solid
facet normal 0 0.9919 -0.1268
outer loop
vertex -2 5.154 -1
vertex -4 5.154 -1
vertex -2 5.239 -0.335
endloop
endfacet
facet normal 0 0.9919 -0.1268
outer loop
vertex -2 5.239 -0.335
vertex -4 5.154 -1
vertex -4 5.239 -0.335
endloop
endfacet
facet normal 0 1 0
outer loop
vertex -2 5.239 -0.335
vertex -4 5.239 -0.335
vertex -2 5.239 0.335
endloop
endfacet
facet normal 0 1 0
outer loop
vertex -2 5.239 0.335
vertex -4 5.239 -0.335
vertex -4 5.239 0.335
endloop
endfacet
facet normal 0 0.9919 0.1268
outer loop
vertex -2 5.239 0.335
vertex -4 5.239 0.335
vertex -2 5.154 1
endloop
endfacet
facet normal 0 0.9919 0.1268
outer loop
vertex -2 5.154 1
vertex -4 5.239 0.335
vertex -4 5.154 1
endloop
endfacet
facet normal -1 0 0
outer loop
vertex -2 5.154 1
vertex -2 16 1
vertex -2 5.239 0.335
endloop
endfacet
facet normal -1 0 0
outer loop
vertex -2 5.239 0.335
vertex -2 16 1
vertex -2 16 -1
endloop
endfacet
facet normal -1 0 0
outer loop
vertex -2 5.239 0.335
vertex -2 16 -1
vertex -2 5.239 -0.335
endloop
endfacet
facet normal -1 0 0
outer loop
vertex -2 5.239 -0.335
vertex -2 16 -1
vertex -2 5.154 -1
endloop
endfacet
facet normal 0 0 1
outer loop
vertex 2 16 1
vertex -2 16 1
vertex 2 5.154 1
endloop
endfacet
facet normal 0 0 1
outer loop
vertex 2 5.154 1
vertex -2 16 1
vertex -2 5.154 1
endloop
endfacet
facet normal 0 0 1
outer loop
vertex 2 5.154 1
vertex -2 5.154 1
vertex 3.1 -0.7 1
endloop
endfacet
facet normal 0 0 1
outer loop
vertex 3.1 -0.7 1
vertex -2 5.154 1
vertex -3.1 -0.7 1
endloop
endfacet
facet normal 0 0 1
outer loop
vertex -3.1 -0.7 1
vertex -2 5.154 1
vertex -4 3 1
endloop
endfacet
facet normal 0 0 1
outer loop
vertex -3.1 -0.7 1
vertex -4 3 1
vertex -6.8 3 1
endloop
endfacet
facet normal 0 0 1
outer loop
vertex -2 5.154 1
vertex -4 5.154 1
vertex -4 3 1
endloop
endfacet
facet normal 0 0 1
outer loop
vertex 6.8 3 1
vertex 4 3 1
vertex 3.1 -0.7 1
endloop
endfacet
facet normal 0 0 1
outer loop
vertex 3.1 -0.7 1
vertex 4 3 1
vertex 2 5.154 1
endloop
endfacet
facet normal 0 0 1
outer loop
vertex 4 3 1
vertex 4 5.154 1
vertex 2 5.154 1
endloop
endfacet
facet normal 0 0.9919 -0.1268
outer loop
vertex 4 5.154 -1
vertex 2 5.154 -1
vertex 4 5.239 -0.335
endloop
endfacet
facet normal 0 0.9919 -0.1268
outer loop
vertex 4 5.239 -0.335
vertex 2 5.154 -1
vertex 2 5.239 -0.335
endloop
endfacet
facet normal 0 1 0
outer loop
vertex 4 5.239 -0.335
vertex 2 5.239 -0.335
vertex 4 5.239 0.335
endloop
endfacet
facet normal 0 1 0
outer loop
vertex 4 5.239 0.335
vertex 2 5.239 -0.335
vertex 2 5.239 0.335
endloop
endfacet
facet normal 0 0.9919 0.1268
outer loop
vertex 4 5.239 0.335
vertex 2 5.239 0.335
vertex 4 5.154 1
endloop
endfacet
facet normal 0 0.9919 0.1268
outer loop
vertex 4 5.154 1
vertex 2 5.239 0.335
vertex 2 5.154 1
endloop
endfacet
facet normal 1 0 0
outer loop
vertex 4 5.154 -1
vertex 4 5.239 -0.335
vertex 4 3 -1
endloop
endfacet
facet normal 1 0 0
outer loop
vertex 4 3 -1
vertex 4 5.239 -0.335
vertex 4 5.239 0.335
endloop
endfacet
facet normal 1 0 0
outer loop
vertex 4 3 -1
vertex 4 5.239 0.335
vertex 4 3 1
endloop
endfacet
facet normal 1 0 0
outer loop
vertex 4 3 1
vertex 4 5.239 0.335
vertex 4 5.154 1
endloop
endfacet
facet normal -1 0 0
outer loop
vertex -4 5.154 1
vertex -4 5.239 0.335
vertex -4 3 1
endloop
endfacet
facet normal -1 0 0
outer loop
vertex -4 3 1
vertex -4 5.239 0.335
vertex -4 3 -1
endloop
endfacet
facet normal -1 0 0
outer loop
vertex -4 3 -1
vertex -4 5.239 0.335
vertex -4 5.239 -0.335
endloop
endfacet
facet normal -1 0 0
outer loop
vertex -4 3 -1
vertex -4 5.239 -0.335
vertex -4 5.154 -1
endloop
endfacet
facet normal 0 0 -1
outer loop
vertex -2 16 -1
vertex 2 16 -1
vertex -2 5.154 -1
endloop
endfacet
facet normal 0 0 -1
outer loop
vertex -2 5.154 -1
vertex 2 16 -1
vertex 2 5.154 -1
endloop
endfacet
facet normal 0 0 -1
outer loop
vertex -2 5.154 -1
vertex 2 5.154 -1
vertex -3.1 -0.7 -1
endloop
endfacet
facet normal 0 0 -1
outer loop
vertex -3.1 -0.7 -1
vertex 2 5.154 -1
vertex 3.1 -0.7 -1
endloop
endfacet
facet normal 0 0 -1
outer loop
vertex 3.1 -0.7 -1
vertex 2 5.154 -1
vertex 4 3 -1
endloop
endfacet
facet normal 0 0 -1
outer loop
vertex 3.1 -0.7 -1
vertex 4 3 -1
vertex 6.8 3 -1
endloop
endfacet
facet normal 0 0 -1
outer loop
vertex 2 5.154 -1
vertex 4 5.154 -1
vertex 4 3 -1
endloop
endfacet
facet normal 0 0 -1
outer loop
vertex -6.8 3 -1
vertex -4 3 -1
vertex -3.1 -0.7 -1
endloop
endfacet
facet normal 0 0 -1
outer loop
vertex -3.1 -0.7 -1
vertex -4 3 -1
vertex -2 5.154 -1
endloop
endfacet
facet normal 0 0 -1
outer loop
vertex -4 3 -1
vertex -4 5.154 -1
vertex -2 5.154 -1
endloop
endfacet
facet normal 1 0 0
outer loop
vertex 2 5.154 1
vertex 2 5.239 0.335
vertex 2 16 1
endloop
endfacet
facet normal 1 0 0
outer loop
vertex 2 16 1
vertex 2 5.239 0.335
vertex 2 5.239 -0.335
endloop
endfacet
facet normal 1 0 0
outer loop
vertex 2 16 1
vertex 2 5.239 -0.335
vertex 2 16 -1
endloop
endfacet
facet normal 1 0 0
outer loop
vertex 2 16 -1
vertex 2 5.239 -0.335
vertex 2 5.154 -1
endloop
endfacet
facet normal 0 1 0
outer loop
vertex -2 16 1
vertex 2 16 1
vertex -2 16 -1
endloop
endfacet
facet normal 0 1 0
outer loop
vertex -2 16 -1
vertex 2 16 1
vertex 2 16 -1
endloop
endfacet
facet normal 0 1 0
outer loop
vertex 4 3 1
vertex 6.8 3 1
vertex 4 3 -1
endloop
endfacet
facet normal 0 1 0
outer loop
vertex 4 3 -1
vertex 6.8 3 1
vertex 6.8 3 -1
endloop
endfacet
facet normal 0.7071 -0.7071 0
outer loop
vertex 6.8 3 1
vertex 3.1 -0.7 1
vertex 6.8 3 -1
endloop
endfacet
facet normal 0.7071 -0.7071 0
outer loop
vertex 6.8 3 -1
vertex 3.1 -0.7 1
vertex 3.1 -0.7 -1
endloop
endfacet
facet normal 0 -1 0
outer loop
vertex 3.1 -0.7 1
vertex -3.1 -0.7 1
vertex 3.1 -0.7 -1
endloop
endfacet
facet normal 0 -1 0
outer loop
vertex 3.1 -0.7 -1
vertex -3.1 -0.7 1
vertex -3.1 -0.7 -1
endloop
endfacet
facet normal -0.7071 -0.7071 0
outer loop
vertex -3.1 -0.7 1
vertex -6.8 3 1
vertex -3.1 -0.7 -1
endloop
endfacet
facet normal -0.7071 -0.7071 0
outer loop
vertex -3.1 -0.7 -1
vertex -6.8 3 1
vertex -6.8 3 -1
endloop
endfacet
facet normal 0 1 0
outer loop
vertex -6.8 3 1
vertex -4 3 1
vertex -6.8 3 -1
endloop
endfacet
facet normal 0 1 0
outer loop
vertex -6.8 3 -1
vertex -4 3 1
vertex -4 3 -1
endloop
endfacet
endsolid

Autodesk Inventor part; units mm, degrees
ref_plane "YZ Plane" through (0, 0, 0) normal (1, 0, 0) x (0, 1, 0)
ref_plane "XZ Plane" through (0, 0, 0) normal (0, 1, 0) x (-1, 0, 0)
ref_plane "XY Plane" through (0, 0, 0) normal (0, 0, 1) x (1, 0, 0)
sketch "Profile" plane through (0, 0, 0) normal (0, 0, 1) x (1, 0, 0)
  line L0 (0, 19.34) -> (0, -4.04) projected
  line L1 (-9.52, 0) -> (9.52, 0) projected
  line L2 (-6.8, 3) -> (-3.1, -0.7)
  line L3 (-3.1, -0.7) -> (3.1, -0.7)
  line L4 (3.1, -0.7) -> (6.8, 3)
  line L5 (6.8, 3) -> (4, 3)
  line L6 (4, 3) -> (4, 6)
  line L7 (-6.8, 3) -> (-4, 3)
  line L8 (-4, 3) -> (-4, 6)
  line L9 (-4, 6) -> (4, 6)
  line L10 (-2, 6) -> (-2, 16)
  line L11 (-2, 16) -> (2, 16)
  line L12 (2, 16) -> (2, 6)
  point P0 (0, 0)
  dimension "d0" = 13.6
  dimension "d1" = 3
  dimension "d2" = 45
  dimension "d3" = 3.7
  dimension "d4" = 3
  dimension "d5" = 8
  dimension "d6" = 4
  dimension "d7" = 10
extrude "Body" add sketch "Profile" along normal mid plane 2
sketch "RotateSketch" plane through (0, 0, 0) normal (1, 0, 0) x (0, 1, 0)
  line L0 (0, 11.2) -> (0, -11.2) projected
  circle A0 centre (0, 0) radius 5.25
  circle A1 centre (0, 0) radius 8
  point P0 (0, 8)
  point P1 (0, 5.25)
  point P2 (0, -5.25)
  point P3 (0, -8)
  dimension "d10" = 10.5
  dimension "d11" = 16
extrude "RotateEdge" cut sketch "RotateSketch" along normal blind 2 from surface at 2 contours A1 L0 A0 picked at (3.9108, -5.8557)
mirror "Mirror" about plane through (0, 0, 0) normal (1, 0, 0) of "RotateEdge"
properties part number "SwitchLeverUnit_Lever"
